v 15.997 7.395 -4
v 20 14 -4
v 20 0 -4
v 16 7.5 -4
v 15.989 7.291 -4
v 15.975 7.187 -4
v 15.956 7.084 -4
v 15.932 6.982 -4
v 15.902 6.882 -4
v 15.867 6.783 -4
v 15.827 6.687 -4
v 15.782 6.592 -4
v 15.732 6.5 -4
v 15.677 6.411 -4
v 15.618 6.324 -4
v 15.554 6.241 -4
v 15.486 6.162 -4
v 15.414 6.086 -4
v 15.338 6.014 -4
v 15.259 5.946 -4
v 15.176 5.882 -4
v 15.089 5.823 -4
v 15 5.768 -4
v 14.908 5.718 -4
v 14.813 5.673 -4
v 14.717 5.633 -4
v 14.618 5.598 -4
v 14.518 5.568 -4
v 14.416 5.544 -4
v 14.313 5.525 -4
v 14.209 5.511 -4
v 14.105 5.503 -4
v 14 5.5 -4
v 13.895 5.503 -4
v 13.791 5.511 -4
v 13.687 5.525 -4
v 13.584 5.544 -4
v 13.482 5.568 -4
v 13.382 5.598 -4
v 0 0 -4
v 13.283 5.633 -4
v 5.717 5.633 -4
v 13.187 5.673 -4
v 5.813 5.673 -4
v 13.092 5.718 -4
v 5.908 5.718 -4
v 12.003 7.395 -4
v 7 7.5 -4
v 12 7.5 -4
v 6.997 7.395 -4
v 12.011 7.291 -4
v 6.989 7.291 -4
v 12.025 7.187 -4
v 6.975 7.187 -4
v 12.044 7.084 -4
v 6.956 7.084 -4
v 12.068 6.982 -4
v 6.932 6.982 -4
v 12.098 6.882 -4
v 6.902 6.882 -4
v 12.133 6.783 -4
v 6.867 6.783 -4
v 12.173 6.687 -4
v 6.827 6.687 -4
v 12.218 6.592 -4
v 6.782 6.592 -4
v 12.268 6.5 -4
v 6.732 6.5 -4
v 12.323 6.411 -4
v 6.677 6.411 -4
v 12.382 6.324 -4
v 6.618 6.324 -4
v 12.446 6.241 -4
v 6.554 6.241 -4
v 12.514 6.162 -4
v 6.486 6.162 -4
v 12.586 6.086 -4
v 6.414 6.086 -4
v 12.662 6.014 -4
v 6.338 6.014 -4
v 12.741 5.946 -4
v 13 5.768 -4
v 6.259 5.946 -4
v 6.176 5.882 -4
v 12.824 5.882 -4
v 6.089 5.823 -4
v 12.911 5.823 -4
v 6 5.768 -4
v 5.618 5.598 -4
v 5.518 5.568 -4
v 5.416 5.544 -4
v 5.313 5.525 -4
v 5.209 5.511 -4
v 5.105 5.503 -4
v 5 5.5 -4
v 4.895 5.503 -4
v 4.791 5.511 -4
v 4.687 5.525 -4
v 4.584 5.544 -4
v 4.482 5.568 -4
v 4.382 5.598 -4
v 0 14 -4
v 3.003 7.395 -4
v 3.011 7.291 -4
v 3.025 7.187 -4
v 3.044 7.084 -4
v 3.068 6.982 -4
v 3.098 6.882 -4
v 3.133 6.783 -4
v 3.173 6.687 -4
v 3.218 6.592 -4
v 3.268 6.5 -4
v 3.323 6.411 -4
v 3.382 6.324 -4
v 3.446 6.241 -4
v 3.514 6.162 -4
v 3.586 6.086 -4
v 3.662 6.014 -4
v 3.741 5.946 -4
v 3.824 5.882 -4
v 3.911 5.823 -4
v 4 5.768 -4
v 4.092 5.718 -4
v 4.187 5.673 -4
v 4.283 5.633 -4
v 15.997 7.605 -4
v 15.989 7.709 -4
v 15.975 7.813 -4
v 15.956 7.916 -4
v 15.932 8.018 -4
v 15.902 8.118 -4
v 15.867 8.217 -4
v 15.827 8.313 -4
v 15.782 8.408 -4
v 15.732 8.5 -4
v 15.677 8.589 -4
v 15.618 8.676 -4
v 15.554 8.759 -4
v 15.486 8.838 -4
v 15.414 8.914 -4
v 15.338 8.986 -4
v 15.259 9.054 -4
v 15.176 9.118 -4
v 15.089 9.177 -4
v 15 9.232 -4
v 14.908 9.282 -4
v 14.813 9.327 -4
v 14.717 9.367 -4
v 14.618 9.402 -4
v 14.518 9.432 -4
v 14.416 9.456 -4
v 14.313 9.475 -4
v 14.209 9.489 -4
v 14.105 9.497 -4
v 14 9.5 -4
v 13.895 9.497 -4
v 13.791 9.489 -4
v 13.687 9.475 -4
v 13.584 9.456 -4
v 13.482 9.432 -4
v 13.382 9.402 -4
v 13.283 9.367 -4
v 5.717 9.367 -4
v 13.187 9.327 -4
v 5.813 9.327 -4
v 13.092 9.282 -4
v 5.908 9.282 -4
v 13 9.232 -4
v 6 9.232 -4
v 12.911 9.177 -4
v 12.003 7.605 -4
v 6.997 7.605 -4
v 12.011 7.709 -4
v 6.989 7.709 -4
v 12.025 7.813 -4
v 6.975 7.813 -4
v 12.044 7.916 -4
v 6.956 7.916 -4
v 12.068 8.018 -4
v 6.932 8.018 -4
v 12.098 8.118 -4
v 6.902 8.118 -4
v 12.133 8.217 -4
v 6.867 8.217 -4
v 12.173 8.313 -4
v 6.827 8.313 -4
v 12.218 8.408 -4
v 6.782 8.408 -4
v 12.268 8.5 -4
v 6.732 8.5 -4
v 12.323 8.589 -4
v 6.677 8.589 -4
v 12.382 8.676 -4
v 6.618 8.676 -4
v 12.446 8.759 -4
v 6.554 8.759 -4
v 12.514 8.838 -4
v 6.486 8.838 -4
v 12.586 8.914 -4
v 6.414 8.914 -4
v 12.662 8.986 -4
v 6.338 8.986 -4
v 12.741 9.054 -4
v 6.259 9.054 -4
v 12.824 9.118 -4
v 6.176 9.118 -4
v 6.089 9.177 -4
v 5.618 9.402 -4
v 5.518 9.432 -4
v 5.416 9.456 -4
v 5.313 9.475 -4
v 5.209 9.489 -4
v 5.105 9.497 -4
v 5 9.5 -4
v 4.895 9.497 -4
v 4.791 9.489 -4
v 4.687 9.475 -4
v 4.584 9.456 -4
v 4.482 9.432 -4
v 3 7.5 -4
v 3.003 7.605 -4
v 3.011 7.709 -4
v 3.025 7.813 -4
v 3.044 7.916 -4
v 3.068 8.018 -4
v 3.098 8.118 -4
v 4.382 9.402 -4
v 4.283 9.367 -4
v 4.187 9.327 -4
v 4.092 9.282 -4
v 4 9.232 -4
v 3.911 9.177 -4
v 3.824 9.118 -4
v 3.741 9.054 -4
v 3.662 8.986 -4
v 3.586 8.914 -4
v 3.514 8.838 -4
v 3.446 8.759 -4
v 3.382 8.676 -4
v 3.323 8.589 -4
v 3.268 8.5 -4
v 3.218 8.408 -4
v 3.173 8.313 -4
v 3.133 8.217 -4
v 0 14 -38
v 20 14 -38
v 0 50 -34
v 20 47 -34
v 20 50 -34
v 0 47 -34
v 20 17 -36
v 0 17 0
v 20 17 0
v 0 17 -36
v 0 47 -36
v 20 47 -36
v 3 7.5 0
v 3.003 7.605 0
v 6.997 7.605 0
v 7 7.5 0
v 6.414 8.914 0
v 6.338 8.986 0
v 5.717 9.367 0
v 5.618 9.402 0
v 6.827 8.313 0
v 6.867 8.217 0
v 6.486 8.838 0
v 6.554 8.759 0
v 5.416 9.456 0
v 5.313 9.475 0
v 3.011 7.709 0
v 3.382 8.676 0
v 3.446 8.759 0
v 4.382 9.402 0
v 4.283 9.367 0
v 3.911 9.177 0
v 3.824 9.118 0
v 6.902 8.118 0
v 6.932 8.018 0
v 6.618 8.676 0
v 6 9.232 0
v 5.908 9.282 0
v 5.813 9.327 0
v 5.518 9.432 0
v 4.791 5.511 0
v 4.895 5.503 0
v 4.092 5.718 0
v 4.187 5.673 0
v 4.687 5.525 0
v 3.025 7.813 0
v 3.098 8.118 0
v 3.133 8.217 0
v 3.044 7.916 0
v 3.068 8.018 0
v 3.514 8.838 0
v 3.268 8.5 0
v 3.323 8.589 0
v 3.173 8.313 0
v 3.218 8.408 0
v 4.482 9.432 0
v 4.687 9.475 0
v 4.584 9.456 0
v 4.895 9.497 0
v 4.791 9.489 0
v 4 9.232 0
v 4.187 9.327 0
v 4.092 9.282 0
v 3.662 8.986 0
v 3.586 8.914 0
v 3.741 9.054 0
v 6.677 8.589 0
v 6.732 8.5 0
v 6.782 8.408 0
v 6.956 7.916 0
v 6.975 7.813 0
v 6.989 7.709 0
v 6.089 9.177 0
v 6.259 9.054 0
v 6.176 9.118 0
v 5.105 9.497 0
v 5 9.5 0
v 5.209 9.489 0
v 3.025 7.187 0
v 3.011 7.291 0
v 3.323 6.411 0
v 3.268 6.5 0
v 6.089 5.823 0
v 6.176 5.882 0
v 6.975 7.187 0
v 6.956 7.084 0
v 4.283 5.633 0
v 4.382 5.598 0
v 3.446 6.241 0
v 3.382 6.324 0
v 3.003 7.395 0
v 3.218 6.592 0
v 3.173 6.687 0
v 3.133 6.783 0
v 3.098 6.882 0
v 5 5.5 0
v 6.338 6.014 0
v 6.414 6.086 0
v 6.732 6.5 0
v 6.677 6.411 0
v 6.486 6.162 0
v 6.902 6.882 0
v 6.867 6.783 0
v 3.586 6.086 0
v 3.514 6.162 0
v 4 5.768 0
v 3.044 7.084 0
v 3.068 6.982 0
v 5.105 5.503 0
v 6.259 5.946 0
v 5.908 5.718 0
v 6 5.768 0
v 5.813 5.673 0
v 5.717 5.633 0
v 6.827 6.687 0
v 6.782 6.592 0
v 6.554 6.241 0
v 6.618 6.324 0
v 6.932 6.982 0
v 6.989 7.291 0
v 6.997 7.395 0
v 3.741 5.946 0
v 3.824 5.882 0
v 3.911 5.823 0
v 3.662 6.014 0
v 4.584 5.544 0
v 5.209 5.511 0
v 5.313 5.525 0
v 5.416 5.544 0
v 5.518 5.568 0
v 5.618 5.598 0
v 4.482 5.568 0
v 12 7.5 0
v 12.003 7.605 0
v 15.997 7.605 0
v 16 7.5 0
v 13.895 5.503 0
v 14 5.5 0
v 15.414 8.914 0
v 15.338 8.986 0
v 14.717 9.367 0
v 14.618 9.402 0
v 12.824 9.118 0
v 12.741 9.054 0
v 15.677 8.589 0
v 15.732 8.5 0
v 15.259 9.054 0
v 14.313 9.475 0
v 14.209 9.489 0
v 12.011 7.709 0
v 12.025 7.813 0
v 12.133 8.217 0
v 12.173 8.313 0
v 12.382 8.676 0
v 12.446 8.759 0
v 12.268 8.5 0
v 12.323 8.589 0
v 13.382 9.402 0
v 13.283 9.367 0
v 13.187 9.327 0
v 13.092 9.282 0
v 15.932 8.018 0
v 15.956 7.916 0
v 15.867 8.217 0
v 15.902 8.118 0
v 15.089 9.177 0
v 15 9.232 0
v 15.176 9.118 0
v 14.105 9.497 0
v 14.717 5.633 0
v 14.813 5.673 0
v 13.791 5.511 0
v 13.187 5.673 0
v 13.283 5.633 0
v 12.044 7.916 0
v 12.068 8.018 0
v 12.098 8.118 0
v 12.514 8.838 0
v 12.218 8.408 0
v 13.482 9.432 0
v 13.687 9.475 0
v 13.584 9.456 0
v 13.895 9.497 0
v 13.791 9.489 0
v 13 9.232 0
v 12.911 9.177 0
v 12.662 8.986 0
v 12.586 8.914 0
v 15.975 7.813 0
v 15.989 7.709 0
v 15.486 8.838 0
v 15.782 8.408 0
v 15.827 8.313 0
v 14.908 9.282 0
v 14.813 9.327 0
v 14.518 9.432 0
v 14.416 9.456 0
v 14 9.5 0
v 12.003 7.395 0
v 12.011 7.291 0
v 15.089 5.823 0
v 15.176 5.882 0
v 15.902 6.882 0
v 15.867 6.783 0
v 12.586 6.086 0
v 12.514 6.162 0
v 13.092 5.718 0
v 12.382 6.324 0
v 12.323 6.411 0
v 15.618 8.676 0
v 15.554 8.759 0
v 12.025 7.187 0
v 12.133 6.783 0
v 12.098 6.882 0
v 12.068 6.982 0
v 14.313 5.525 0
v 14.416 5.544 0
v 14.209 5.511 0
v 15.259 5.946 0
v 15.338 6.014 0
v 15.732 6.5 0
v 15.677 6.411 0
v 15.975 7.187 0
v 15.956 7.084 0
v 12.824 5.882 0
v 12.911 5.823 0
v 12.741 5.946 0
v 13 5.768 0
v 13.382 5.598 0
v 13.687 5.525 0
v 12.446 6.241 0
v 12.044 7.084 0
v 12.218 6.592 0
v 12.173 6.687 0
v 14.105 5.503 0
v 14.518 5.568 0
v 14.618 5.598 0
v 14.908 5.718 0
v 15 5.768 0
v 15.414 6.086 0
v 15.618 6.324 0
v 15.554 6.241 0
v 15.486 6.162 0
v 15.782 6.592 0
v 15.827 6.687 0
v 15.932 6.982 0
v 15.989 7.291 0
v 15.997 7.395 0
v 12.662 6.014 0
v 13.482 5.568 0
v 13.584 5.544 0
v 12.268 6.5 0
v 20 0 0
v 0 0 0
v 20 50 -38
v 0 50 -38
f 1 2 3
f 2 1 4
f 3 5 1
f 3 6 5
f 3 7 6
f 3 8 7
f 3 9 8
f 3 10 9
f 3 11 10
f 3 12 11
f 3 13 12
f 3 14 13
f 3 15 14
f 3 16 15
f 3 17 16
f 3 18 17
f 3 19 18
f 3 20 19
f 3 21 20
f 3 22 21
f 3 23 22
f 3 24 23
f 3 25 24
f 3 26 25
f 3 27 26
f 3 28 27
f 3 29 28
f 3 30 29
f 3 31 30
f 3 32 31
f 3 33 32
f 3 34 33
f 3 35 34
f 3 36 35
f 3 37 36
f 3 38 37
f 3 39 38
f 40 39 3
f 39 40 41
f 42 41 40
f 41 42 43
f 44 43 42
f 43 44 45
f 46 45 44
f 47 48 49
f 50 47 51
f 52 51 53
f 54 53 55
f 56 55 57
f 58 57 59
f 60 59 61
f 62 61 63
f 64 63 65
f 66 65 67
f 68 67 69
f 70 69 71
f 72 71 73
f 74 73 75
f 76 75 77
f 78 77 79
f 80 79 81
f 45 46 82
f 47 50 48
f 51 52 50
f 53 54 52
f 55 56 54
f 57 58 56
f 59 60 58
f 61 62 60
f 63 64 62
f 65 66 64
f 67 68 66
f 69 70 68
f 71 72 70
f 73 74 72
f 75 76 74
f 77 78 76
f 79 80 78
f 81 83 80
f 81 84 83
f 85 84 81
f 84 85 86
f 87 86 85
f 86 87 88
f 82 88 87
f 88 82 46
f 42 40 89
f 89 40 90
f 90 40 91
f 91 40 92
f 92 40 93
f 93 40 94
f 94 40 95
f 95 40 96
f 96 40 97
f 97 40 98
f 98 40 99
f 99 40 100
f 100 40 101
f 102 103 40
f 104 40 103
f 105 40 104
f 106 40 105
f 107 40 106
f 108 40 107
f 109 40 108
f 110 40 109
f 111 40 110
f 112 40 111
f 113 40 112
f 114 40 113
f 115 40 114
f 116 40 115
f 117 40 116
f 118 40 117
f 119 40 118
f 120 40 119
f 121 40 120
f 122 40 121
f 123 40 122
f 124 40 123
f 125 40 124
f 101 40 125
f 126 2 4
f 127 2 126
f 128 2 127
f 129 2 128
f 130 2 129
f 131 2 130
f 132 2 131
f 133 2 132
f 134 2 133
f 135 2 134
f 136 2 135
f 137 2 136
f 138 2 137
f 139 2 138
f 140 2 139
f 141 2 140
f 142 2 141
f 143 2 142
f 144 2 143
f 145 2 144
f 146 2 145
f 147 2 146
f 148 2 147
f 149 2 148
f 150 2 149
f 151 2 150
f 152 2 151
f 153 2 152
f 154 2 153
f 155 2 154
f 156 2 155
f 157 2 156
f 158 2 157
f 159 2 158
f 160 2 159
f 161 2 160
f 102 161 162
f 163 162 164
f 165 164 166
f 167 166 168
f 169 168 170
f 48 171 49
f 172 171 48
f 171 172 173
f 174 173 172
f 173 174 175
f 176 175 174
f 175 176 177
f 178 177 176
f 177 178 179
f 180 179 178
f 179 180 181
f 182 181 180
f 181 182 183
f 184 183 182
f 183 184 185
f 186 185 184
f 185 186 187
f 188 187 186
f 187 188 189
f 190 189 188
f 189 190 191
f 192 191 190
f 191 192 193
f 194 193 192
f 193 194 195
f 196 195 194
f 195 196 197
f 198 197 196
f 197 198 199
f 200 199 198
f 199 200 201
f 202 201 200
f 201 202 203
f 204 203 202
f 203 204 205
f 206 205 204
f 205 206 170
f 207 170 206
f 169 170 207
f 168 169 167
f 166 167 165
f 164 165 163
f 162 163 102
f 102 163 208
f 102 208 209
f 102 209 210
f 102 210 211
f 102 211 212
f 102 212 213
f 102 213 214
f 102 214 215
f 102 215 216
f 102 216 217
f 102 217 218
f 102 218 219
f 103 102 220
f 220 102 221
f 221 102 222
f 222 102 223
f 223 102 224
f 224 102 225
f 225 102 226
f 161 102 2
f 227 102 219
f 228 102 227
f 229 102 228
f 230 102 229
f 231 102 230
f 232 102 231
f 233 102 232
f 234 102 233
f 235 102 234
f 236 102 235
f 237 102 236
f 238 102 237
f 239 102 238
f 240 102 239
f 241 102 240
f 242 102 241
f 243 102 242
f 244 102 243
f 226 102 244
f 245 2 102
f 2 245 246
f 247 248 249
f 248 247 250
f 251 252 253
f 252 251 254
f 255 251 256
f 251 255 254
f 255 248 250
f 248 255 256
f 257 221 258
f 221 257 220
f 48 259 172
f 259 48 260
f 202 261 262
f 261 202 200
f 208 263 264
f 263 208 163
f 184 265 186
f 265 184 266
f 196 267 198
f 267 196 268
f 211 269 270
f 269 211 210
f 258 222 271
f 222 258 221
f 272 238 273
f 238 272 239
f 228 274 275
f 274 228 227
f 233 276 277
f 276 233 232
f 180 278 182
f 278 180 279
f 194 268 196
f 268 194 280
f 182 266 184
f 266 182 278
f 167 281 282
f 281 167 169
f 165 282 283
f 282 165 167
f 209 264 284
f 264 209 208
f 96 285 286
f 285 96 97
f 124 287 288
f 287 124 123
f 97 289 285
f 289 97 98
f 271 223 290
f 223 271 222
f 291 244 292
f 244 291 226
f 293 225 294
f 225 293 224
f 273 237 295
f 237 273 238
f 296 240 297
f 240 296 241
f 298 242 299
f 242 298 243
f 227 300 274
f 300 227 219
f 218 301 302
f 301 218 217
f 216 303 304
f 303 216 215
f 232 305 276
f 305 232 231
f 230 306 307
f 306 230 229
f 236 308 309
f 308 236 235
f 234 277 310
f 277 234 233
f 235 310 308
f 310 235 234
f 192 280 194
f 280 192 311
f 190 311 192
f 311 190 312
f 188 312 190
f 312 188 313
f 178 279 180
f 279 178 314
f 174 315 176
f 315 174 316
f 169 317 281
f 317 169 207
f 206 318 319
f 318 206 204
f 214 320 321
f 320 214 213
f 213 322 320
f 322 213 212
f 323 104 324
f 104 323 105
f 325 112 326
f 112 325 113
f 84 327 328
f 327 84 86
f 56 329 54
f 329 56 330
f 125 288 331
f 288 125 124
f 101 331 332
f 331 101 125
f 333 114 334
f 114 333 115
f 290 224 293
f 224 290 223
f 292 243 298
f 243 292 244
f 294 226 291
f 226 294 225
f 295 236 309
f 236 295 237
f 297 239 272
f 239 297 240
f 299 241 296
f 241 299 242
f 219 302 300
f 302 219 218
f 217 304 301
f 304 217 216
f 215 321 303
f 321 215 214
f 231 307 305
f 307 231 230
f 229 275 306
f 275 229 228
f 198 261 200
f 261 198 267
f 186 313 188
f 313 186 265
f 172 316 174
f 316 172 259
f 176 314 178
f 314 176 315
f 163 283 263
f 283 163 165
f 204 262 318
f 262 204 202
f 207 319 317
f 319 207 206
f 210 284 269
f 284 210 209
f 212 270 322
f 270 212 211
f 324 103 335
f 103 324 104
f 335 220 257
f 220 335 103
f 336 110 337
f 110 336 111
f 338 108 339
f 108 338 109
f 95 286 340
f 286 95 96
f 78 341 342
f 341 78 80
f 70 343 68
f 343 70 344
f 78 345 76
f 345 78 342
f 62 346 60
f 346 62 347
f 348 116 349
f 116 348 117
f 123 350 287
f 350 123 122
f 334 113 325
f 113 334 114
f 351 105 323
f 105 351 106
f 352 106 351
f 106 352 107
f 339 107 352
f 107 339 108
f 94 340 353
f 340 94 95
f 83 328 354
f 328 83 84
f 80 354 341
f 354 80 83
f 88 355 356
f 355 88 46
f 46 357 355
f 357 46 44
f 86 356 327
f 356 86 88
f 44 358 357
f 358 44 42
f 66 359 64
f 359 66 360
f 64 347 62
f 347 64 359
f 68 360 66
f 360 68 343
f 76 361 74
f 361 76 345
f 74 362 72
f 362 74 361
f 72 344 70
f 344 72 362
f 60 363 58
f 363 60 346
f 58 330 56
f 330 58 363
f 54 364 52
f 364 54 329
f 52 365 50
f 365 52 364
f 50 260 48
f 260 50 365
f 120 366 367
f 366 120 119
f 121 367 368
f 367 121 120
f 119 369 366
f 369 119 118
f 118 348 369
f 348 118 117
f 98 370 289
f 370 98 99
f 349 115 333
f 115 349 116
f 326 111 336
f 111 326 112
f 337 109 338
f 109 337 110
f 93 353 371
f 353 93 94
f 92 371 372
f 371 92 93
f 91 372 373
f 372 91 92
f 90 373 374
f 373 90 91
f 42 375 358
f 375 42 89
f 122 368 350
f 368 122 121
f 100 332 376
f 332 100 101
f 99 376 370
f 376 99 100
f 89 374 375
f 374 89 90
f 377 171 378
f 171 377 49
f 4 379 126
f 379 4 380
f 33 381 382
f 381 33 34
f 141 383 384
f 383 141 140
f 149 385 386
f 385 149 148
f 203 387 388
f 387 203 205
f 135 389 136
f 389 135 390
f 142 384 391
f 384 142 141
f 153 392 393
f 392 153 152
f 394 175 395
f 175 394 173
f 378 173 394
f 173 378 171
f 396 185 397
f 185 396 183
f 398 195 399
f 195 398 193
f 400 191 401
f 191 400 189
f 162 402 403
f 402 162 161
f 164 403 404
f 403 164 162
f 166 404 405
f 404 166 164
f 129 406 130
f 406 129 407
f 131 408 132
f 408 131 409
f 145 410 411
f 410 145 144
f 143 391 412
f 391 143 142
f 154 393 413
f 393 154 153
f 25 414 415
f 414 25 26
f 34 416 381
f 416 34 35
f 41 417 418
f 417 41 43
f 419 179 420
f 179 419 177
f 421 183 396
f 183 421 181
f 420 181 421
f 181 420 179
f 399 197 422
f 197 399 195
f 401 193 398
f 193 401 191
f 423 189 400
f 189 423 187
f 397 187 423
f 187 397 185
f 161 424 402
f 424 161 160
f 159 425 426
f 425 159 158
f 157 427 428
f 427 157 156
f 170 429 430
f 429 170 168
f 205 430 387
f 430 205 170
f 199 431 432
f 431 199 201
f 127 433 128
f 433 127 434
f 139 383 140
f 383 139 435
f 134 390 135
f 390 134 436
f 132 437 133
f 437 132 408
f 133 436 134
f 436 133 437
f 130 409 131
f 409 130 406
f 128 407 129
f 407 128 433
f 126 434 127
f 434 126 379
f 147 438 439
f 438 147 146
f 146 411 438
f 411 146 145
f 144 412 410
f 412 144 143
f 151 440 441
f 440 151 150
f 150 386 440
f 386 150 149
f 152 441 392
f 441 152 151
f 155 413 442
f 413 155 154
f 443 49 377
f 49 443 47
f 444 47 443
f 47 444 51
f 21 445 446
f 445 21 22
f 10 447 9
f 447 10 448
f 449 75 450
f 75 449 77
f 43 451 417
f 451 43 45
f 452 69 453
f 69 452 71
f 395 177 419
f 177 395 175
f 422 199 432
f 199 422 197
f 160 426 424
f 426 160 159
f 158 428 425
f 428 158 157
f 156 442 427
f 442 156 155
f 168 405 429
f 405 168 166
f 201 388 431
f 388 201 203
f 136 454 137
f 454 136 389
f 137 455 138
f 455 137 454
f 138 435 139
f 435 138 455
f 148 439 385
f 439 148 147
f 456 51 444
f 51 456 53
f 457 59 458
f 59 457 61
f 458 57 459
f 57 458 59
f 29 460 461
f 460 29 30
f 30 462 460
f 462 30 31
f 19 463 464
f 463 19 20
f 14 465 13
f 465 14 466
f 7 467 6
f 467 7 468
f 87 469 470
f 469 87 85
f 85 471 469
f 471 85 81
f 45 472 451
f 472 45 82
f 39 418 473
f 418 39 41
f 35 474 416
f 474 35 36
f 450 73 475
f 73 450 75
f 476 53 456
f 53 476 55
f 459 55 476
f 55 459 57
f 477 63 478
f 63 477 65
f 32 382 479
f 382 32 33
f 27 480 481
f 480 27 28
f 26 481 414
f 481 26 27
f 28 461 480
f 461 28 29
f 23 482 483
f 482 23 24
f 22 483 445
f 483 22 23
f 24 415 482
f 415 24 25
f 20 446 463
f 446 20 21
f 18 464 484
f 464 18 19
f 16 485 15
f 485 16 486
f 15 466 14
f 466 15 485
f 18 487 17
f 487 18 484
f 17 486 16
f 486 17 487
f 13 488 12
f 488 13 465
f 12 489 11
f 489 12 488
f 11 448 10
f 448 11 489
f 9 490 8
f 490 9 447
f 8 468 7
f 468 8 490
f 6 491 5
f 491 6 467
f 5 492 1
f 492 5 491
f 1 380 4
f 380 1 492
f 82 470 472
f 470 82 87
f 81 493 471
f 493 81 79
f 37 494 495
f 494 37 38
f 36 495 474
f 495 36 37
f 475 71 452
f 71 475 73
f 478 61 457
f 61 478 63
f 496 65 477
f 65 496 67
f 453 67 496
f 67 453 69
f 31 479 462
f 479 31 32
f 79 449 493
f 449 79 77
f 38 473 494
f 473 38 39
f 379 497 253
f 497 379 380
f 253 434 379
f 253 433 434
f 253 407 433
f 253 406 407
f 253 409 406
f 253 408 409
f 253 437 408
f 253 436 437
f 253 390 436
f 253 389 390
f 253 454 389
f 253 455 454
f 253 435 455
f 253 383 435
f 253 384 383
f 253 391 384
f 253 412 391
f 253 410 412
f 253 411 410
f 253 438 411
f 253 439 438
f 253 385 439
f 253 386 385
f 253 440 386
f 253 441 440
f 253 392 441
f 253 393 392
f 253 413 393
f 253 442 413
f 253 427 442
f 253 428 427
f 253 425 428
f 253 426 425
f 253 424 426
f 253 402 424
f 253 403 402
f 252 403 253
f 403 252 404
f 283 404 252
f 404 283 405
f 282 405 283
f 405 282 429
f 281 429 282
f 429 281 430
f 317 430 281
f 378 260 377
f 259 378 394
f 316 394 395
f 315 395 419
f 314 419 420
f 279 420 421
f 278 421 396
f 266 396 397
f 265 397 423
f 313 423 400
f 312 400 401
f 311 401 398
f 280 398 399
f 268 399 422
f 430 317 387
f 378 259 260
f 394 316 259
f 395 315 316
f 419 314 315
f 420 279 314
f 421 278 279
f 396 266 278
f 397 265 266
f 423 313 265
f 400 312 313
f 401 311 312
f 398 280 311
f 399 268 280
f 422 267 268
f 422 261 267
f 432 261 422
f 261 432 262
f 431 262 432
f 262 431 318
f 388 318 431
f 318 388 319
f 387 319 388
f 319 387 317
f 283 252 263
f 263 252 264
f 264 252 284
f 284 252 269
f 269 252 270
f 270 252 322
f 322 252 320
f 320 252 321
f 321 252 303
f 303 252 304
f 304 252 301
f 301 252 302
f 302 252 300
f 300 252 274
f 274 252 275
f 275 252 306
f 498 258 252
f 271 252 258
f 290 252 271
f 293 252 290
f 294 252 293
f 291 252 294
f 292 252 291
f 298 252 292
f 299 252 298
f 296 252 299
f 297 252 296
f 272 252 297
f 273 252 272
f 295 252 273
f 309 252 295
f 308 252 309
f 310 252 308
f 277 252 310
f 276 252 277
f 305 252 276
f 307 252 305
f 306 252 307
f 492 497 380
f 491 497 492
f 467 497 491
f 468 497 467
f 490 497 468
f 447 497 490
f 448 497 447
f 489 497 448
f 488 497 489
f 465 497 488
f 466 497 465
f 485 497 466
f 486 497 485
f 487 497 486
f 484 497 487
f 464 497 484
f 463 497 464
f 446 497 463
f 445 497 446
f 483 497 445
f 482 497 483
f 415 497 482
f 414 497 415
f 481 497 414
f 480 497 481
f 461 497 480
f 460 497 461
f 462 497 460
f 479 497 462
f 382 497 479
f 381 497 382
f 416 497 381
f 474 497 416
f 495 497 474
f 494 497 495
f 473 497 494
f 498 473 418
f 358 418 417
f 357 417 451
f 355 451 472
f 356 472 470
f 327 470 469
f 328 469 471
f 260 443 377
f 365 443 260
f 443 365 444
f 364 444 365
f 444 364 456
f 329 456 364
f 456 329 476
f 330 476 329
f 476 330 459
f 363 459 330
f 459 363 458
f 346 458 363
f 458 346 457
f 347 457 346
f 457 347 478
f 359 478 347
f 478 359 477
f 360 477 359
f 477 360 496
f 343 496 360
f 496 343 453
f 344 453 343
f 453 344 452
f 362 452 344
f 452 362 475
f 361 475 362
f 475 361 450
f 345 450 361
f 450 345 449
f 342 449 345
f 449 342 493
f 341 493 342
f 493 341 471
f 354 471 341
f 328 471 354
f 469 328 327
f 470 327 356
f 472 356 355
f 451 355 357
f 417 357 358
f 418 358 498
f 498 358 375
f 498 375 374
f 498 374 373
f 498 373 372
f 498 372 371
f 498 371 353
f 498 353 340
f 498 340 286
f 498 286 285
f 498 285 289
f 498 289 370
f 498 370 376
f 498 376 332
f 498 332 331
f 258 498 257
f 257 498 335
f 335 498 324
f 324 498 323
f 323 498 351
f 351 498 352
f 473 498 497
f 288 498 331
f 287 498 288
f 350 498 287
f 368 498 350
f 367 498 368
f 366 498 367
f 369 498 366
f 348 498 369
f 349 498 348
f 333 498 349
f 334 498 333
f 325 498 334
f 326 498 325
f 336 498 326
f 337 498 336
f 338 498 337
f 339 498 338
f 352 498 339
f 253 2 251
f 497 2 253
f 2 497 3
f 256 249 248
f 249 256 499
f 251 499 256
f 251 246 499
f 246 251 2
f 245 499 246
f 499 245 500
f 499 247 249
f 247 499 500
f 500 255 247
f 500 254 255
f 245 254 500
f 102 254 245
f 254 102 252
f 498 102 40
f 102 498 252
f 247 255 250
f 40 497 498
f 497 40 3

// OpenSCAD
rotate([0,90,0])
difference()
{
    cube([38, 50, 20]);
    union()
    {
        translate([4,-1,-1])cube([40,15,22]);
        translate([-6,17,-1])cube([40,50,22]);
        translate([-4,17,-1])cube([40,30,22]);
        translate([-1,7.5,5])rotate([0,90,0])cylinder(r=2, h=20, $fn=120);
        translate([-1,7.5,14])rotate([0,90,0])cylinder(r=2, h=20, $fn=120);
    }
}
